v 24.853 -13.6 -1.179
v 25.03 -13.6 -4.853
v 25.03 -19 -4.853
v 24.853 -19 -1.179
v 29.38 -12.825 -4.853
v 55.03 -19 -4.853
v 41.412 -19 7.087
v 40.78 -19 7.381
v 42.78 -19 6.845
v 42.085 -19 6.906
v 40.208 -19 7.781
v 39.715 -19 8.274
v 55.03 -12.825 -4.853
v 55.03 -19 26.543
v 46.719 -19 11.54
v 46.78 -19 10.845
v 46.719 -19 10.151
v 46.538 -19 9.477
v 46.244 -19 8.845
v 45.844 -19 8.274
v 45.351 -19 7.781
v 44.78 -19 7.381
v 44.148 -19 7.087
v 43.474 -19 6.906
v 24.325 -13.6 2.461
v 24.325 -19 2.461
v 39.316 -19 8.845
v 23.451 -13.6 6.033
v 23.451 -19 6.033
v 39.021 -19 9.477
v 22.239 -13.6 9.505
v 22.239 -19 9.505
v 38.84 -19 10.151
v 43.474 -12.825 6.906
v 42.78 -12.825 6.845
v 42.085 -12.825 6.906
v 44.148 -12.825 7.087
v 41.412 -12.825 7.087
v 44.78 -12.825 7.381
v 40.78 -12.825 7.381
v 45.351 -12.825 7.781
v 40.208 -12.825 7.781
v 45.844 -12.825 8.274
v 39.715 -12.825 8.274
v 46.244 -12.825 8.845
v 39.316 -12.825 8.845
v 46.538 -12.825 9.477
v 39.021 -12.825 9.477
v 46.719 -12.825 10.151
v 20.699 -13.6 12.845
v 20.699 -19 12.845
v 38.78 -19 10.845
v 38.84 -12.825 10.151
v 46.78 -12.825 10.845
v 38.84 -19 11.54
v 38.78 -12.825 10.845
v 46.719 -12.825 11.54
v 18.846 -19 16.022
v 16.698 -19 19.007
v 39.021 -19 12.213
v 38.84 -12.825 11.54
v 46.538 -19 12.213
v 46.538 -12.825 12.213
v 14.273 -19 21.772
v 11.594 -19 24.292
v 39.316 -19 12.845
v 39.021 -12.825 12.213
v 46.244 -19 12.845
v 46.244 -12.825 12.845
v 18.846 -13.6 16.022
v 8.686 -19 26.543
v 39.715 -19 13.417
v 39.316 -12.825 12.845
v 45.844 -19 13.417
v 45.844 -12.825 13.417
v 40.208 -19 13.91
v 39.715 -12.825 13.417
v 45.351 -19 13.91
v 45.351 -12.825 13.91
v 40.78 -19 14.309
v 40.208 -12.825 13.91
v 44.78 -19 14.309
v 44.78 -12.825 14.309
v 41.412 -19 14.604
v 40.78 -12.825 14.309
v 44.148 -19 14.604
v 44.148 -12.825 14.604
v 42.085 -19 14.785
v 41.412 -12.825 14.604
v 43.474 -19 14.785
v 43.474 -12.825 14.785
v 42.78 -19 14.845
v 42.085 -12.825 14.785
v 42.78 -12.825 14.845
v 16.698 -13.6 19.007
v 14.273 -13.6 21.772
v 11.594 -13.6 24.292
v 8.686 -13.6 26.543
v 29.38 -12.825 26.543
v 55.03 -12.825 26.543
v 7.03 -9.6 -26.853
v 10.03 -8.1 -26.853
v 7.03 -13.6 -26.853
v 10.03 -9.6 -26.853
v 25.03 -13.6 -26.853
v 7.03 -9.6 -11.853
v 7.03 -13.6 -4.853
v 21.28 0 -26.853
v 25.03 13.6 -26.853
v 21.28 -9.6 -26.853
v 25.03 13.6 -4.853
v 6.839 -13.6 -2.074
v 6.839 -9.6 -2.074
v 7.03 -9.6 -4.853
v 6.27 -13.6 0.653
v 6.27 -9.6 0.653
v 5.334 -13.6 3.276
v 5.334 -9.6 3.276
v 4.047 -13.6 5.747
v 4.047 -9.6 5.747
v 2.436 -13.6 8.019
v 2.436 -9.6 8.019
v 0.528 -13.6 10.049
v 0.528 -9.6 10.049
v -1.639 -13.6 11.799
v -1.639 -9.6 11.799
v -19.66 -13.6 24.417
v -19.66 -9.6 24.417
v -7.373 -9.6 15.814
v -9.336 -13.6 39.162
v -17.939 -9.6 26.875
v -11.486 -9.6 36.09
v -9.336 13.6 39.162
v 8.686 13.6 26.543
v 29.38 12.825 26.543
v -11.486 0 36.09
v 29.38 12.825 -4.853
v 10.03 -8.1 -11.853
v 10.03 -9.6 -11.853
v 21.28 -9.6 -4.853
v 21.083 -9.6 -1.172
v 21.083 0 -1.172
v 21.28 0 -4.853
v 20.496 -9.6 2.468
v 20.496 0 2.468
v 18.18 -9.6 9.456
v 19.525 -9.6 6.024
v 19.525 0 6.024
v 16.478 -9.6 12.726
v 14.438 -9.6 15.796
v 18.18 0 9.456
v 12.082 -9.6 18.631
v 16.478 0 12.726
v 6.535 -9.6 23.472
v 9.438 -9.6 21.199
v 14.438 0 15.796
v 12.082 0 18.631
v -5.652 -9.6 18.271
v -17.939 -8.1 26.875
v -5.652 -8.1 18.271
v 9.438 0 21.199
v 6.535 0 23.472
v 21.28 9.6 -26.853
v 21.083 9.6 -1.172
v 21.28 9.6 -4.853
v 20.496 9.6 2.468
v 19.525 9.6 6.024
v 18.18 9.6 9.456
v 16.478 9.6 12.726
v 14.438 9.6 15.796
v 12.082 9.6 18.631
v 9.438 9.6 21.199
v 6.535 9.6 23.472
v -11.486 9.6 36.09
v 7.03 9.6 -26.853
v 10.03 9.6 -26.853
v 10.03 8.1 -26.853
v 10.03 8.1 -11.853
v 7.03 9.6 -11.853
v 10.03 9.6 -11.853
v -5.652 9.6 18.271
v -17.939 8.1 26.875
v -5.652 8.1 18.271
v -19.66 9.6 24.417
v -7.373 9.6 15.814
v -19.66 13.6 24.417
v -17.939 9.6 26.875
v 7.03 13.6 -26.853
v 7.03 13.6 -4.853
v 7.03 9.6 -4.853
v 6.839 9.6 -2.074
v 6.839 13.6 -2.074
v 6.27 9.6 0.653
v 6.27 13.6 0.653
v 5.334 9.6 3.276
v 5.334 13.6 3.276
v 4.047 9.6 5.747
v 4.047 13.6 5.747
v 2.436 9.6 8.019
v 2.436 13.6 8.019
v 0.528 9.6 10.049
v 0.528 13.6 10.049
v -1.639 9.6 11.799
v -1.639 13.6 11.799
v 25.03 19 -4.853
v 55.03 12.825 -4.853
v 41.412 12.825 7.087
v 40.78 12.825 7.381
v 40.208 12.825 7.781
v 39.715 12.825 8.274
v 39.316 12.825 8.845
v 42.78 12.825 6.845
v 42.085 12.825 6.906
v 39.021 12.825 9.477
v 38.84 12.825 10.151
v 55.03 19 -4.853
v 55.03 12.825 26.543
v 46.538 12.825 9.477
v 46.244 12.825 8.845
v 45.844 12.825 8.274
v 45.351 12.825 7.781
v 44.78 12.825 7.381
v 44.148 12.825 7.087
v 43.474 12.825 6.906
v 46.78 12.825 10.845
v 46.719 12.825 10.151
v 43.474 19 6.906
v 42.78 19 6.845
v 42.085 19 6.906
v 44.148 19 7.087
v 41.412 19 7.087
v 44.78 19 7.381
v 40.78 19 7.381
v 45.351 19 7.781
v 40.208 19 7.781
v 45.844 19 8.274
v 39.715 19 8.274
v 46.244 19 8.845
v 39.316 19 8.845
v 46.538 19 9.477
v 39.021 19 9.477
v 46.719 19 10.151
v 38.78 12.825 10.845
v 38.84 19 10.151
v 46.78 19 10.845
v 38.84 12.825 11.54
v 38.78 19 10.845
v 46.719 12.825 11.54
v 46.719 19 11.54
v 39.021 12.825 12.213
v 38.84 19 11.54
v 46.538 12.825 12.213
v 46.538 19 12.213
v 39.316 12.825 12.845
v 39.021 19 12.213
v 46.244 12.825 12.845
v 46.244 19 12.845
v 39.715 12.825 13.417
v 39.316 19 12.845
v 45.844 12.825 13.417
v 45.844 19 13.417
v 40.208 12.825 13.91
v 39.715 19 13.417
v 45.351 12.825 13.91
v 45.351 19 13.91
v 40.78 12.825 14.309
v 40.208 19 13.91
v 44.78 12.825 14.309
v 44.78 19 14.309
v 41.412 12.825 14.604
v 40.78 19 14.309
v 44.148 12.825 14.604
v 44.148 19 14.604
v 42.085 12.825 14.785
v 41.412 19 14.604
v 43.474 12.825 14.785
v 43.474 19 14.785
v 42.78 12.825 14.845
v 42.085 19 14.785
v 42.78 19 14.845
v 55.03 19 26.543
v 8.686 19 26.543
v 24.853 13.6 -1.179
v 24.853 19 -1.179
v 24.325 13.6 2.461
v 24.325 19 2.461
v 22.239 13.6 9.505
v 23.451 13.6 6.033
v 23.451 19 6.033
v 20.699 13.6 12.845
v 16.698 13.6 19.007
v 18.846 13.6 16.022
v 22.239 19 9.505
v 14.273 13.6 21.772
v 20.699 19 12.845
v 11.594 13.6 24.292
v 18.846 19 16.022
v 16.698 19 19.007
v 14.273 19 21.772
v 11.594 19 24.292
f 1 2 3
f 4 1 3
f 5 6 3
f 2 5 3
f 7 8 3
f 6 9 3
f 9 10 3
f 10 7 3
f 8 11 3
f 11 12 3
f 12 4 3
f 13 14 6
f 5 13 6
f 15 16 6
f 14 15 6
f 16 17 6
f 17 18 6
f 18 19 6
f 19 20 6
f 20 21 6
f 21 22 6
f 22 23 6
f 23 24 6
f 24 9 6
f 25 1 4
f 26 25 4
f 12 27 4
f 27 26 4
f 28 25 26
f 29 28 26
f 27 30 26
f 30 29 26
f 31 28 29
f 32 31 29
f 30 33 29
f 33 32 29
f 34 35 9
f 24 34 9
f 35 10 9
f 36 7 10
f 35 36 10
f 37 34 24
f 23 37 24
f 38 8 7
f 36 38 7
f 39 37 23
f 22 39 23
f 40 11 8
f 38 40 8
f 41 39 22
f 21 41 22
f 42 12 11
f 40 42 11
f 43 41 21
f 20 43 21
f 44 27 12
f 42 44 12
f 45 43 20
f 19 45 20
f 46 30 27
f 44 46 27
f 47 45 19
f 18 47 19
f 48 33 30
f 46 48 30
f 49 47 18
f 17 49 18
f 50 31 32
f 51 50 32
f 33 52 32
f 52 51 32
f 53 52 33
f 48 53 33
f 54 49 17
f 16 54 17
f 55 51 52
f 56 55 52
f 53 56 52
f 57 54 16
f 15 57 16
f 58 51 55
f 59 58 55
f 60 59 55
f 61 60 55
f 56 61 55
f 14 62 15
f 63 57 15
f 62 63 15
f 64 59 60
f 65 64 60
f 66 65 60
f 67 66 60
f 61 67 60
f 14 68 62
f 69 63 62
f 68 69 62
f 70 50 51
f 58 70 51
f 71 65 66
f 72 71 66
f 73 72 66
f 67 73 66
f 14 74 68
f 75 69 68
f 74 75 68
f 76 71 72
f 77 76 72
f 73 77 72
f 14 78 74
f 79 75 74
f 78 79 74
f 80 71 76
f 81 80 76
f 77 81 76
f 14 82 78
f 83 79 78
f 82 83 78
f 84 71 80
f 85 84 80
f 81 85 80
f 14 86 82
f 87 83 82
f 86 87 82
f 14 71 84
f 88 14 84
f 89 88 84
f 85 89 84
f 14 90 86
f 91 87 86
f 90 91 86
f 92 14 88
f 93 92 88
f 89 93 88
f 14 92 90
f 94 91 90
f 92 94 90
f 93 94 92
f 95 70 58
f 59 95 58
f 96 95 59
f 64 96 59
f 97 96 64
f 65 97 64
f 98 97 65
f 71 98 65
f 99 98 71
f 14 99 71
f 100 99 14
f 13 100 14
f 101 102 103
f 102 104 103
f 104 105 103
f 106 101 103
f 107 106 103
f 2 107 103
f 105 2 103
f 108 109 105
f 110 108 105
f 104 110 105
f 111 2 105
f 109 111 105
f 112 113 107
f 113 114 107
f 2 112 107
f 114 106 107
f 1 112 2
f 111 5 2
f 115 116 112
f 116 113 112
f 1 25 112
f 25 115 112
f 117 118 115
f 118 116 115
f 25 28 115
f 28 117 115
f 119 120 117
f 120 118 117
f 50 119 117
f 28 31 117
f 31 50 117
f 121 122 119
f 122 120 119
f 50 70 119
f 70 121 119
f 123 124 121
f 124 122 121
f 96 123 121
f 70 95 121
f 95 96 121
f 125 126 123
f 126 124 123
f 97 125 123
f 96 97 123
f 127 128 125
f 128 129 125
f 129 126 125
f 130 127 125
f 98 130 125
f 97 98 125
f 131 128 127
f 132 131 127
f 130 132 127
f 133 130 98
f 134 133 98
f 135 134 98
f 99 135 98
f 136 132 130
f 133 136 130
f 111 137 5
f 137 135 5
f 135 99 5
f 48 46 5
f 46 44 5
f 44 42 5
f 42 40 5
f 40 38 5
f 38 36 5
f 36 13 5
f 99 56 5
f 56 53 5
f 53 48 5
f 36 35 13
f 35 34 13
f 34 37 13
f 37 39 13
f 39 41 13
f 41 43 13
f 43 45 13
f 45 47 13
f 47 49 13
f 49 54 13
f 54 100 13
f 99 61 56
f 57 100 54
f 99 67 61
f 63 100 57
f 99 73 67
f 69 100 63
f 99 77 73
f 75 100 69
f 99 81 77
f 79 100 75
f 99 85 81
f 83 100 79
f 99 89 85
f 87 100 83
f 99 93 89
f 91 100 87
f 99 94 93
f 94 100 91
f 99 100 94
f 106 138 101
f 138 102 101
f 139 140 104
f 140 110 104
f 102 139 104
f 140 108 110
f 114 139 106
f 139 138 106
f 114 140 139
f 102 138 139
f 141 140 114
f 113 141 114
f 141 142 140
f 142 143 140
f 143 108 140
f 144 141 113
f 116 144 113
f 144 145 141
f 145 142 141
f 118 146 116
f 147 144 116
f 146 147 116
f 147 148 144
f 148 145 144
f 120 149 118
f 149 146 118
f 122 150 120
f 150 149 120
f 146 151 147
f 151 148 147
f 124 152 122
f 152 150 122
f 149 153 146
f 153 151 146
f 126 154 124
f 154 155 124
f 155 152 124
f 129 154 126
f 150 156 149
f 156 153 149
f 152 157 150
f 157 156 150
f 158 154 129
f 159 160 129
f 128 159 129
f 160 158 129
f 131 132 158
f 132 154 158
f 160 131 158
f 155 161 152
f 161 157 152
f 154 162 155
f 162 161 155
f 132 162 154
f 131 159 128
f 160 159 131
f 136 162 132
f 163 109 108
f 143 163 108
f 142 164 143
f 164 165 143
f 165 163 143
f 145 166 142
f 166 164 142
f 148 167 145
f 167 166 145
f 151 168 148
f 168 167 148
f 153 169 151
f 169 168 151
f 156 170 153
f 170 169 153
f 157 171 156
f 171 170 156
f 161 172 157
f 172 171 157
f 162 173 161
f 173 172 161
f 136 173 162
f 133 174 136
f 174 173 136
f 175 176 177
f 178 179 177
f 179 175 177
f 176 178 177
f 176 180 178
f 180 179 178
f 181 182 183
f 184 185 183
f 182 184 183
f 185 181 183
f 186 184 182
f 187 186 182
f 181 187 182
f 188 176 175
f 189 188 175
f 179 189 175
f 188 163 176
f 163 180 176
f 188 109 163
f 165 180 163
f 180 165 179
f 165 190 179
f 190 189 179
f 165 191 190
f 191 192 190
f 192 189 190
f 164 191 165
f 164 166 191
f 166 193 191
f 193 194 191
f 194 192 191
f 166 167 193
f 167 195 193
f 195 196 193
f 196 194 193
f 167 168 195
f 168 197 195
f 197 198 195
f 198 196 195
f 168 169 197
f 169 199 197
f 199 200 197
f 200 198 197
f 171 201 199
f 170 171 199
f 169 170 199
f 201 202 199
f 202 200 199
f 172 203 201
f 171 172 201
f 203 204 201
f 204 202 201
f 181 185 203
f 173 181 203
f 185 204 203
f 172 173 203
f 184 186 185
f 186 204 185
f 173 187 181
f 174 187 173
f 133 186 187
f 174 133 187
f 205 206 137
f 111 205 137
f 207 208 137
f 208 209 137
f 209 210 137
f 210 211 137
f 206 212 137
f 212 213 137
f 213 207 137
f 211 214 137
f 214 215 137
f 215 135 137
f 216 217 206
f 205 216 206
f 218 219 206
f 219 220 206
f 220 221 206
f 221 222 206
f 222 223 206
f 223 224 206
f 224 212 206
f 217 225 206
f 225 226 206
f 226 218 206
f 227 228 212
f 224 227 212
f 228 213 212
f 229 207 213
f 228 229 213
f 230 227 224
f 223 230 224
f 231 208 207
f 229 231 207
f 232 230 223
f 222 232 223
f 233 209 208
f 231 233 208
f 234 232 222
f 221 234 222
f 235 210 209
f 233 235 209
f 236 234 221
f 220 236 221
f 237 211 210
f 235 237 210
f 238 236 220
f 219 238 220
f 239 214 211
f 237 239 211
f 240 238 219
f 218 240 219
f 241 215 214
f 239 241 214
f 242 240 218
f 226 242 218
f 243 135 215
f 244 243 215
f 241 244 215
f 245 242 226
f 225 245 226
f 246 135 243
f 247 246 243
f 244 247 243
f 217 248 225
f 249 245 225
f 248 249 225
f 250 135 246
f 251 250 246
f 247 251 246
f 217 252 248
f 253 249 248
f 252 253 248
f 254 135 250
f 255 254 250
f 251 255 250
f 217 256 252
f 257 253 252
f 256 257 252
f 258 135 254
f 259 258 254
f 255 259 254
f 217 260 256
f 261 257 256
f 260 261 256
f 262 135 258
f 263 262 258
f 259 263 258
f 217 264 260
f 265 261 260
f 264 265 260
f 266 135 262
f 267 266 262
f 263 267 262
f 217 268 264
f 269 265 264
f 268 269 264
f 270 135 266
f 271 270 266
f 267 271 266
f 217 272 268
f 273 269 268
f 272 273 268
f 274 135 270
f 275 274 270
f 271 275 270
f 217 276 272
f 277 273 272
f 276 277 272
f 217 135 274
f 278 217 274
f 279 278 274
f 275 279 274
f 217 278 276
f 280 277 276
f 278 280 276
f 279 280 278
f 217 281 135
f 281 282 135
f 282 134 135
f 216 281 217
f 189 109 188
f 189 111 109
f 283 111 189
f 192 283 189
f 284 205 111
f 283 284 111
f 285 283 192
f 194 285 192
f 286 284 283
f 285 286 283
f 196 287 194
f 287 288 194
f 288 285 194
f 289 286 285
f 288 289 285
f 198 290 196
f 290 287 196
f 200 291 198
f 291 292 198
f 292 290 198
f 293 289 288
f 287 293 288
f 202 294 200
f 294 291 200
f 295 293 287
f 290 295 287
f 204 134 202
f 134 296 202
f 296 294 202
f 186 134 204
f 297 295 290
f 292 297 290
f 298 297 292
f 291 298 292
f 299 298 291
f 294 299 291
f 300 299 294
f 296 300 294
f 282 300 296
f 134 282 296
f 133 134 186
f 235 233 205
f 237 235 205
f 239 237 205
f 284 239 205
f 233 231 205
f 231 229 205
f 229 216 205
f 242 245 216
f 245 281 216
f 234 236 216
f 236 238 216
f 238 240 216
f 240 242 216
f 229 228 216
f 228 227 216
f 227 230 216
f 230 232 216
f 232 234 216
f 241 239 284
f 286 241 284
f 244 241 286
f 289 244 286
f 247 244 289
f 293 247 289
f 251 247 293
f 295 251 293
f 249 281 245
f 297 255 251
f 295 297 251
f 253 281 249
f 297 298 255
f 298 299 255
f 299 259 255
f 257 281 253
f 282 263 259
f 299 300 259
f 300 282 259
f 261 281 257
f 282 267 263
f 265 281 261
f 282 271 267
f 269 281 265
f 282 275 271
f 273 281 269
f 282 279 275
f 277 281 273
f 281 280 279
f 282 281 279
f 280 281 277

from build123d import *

# Parameters (mm, degrees)
BOSS_EXTRUDE1_DEPTH      = 15
BOSS_EXTRUDE2_DEPTH      = 15
BOSS_EXTRUDE3_DEPTH      = 19
BOSS_EXTRUDE3_DEPTH_BACK = 19
BOSS_EXTRUDE3_START      = -13.6
SKETCH9_W                = 25.65
SKETCH9_H                = 25.65
CUT_EXTRUDE2_DEPTH       = 41
SKETCH10_R               = 4
CUT_EXTRUDE3_DEPTH       = 41


with BuildPart() as part:
    # Sweep1: sweep along a path in Sketch1
    with BuildLine(Plane(origin=(0, 0, 0), x_dir=(1, 0, 0), z_dir=(0, 1, 0))) as sweep1_path:
        Line((21.279643058, 26.852704607), (21.279643058, 4.852704607))
        ThreePointArc((21.279643058, 4.852704607), (17.372739998, -11.11349039), (6.534906261, -23.471671247))
        Line((6.534906261, -23.471671247), (-11.486438713, -36.090352847))
    # Sketch5 → Sweep1 (sweep)
    with BuildSketch(Plane.XY.offset(-26.852704607)):
        Polygon((21.279643058, 9.6), (21.279643058, 0), (21.279643058, -9.6), (7.029643058, -9.6), (7.029643058, -13.6), (25.029643058, -13.6), (25.029643058, 13.6), (7.029643058, 13.6), (7.029643058, 9.6), align=None)
    sweep(path=sweep1_path.line)

    # Sketch6 → Boss-Extrude1 (add)
    with BuildSketch(Plane(origin=(0, 0, -26.852704607), x_dir=(-1, 0, 0), z_dir=(0, 0, -1))):
        Polygon((-7.029643058, 9.6), (-10.029643058, 8.1), (-10.029643058, 9.6), align=None)
        Polygon((-7.029643058, -9.6), (-10.029643058, -8.1), (-10.029643058, -9.6), align=None)
    extrude(amount=-BOSS_EXTRUDE1_DEPTH)

    # Sketch7 → Boss-Extrude2 (add)
    with BuildSketch(Plane(origin=(-24.66443519, 0, 17.270223446), x_dir=(0.5735764363510444, 0, 0.8191520442889931), z_dir=(-0.8191520442889931, 0, 0.5735764363510444))):
        Polygon((8.72513573, 9.6), (11.72513573, 8.1), (11.72513573, 9.6), align=None)
        Polygon((11.72513573, -8.1), (11.72513573, -9.6), (8.72513573, -9.6), align=None)
    extrude(amount=-BOSS_EXTRUDE2_DEPTH)

    # Sketch8 → Boss-Extrude3 (add, two sides: drawn at the far end of the back side and taken through both)
    with BuildSketch(Plane(origin=(0, 13.6, 0), x_dir=(1, 0, 0), z_dir=(0, 1, 0)).offset(BOSS_EXTRUDE3_START - BOSS_EXTRUDE3_DEPTH_BACK)):
        with BuildLine():
            Line((8.685817898, -26.543491413), (25.029643058, -26.543491413))
            Line((25.029643058, -26.543491413), (55.029643058, -26.543491413))
            Line((55.029643058, -26.543491413), (55.029643058, 4.852704607))
            Line((55.029643058, 4.852704607), (25.029643058, 4.852704607))
            ThreePointArc((25.029643058, 4.852704607), (20.699030623, -12.84504769), (8.685817898, -26.543491413))
        make_face()
    extrude(amount=BOSS_EXTRUDE3_DEPTH + BOSS_EXTRUDE3_DEPTH_BACK)

    # Sketch9 → Cut-Extrude2 (cut)
    with BuildSketch(Plane(origin=(0, 0, -4.852704607), x_dir=(-1, 0, 0), z_dir=(0, 0, -1))):
        with Locations((-42.204643058, 0)):
            Rectangle(SKETCH9_W, SKETCH9_H)
    extrude(amount=-CUT_EXTRUDE2_DEPTH, mode=Mode.SUBTRACT)

    # Sketch10 → Cut-Extrude3 (cut)
    with BuildSketch(Plane.XZ.offset(19)):
        with Locations(Location((42.779643058, 10.845393403, 0), (0, 0, 270))):
            Circle(SKETCH10_R)
    extrude(amount=-CUT_EXTRUDE3_DEPTH, mode=Mode.SUBTRACT)


solid = part.part
